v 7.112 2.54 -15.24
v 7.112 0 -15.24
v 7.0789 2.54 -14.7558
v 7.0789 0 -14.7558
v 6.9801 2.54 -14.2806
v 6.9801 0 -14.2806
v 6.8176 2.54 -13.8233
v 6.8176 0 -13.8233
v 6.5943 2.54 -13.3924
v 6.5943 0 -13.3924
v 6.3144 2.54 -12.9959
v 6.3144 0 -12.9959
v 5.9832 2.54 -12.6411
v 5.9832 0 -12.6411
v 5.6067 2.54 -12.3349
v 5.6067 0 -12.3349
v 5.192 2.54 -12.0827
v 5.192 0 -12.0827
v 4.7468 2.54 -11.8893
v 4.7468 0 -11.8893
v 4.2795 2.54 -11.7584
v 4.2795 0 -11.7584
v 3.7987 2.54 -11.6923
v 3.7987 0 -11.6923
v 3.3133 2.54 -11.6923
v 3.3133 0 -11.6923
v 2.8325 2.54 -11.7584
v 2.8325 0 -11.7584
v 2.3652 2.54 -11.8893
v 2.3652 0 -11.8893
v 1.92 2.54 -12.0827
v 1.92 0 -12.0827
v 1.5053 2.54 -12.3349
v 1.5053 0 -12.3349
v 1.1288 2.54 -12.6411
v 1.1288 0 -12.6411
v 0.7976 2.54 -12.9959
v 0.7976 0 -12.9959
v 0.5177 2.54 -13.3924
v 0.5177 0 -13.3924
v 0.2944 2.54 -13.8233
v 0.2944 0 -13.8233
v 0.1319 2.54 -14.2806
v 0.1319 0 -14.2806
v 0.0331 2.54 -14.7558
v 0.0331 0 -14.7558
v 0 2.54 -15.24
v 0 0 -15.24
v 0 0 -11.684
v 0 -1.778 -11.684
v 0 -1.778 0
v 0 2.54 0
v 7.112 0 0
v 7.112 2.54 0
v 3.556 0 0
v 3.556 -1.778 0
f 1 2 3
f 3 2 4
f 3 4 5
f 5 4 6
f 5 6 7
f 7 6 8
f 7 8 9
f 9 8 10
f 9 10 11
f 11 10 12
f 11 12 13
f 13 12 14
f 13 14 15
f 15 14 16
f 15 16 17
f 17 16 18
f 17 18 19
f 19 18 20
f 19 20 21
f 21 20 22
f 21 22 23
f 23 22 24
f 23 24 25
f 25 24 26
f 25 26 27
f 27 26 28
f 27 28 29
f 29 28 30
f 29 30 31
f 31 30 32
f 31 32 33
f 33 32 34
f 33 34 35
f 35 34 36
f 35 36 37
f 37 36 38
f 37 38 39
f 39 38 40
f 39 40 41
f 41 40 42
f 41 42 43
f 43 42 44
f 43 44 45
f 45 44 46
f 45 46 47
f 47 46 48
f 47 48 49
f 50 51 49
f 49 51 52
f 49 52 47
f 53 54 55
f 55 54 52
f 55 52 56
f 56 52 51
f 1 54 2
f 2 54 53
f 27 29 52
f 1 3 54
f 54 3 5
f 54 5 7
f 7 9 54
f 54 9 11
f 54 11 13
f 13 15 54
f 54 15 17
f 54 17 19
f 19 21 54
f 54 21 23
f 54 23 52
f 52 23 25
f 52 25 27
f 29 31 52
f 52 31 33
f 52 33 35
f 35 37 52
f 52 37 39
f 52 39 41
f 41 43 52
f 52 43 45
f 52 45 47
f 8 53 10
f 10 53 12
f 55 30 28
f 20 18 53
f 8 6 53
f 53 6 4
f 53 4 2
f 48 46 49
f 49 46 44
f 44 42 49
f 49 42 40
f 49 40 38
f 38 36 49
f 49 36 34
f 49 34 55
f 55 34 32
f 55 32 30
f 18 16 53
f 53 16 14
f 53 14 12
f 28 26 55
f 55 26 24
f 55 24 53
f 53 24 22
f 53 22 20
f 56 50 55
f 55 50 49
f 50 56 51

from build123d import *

# Parameters (mm, degrees)
BOSS_EXTRUDE1_DEPTH = 2.54
BOSS_EXTRUDE2_DEPTH = 1.778


with BuildPart() as part:
    # Sketch1 → Boss-Extrude1 (new body)
    with BuildSketch(Plane(origin=(0, 0, 0), x_dir=(1, 0, 0), z_dir=(0, 1, 0))):
        with BuildLine():
            Line((0, 15.24), (0, 0))
            Line((0, 0), (7.112, 0))
            Line((7.112, 0), (7.112, 15.24))
            ThreePointArc((7.112, 15.24), (3.556, 11.684), (0, 15.24))
        make_face()
    extrude(amount=BOSS_EXTRUDE1_DEPTH)

    # Sketch2 → Boss-Extrude2 (add)
    with BuildSketch(Plane.XZ):
        Polygon((0, 0), (3.556, 0), (0, -11.684), align=None)
    extrude(amount=BOSS_EXTRUDE2_DEPTH)


solid = part.part
